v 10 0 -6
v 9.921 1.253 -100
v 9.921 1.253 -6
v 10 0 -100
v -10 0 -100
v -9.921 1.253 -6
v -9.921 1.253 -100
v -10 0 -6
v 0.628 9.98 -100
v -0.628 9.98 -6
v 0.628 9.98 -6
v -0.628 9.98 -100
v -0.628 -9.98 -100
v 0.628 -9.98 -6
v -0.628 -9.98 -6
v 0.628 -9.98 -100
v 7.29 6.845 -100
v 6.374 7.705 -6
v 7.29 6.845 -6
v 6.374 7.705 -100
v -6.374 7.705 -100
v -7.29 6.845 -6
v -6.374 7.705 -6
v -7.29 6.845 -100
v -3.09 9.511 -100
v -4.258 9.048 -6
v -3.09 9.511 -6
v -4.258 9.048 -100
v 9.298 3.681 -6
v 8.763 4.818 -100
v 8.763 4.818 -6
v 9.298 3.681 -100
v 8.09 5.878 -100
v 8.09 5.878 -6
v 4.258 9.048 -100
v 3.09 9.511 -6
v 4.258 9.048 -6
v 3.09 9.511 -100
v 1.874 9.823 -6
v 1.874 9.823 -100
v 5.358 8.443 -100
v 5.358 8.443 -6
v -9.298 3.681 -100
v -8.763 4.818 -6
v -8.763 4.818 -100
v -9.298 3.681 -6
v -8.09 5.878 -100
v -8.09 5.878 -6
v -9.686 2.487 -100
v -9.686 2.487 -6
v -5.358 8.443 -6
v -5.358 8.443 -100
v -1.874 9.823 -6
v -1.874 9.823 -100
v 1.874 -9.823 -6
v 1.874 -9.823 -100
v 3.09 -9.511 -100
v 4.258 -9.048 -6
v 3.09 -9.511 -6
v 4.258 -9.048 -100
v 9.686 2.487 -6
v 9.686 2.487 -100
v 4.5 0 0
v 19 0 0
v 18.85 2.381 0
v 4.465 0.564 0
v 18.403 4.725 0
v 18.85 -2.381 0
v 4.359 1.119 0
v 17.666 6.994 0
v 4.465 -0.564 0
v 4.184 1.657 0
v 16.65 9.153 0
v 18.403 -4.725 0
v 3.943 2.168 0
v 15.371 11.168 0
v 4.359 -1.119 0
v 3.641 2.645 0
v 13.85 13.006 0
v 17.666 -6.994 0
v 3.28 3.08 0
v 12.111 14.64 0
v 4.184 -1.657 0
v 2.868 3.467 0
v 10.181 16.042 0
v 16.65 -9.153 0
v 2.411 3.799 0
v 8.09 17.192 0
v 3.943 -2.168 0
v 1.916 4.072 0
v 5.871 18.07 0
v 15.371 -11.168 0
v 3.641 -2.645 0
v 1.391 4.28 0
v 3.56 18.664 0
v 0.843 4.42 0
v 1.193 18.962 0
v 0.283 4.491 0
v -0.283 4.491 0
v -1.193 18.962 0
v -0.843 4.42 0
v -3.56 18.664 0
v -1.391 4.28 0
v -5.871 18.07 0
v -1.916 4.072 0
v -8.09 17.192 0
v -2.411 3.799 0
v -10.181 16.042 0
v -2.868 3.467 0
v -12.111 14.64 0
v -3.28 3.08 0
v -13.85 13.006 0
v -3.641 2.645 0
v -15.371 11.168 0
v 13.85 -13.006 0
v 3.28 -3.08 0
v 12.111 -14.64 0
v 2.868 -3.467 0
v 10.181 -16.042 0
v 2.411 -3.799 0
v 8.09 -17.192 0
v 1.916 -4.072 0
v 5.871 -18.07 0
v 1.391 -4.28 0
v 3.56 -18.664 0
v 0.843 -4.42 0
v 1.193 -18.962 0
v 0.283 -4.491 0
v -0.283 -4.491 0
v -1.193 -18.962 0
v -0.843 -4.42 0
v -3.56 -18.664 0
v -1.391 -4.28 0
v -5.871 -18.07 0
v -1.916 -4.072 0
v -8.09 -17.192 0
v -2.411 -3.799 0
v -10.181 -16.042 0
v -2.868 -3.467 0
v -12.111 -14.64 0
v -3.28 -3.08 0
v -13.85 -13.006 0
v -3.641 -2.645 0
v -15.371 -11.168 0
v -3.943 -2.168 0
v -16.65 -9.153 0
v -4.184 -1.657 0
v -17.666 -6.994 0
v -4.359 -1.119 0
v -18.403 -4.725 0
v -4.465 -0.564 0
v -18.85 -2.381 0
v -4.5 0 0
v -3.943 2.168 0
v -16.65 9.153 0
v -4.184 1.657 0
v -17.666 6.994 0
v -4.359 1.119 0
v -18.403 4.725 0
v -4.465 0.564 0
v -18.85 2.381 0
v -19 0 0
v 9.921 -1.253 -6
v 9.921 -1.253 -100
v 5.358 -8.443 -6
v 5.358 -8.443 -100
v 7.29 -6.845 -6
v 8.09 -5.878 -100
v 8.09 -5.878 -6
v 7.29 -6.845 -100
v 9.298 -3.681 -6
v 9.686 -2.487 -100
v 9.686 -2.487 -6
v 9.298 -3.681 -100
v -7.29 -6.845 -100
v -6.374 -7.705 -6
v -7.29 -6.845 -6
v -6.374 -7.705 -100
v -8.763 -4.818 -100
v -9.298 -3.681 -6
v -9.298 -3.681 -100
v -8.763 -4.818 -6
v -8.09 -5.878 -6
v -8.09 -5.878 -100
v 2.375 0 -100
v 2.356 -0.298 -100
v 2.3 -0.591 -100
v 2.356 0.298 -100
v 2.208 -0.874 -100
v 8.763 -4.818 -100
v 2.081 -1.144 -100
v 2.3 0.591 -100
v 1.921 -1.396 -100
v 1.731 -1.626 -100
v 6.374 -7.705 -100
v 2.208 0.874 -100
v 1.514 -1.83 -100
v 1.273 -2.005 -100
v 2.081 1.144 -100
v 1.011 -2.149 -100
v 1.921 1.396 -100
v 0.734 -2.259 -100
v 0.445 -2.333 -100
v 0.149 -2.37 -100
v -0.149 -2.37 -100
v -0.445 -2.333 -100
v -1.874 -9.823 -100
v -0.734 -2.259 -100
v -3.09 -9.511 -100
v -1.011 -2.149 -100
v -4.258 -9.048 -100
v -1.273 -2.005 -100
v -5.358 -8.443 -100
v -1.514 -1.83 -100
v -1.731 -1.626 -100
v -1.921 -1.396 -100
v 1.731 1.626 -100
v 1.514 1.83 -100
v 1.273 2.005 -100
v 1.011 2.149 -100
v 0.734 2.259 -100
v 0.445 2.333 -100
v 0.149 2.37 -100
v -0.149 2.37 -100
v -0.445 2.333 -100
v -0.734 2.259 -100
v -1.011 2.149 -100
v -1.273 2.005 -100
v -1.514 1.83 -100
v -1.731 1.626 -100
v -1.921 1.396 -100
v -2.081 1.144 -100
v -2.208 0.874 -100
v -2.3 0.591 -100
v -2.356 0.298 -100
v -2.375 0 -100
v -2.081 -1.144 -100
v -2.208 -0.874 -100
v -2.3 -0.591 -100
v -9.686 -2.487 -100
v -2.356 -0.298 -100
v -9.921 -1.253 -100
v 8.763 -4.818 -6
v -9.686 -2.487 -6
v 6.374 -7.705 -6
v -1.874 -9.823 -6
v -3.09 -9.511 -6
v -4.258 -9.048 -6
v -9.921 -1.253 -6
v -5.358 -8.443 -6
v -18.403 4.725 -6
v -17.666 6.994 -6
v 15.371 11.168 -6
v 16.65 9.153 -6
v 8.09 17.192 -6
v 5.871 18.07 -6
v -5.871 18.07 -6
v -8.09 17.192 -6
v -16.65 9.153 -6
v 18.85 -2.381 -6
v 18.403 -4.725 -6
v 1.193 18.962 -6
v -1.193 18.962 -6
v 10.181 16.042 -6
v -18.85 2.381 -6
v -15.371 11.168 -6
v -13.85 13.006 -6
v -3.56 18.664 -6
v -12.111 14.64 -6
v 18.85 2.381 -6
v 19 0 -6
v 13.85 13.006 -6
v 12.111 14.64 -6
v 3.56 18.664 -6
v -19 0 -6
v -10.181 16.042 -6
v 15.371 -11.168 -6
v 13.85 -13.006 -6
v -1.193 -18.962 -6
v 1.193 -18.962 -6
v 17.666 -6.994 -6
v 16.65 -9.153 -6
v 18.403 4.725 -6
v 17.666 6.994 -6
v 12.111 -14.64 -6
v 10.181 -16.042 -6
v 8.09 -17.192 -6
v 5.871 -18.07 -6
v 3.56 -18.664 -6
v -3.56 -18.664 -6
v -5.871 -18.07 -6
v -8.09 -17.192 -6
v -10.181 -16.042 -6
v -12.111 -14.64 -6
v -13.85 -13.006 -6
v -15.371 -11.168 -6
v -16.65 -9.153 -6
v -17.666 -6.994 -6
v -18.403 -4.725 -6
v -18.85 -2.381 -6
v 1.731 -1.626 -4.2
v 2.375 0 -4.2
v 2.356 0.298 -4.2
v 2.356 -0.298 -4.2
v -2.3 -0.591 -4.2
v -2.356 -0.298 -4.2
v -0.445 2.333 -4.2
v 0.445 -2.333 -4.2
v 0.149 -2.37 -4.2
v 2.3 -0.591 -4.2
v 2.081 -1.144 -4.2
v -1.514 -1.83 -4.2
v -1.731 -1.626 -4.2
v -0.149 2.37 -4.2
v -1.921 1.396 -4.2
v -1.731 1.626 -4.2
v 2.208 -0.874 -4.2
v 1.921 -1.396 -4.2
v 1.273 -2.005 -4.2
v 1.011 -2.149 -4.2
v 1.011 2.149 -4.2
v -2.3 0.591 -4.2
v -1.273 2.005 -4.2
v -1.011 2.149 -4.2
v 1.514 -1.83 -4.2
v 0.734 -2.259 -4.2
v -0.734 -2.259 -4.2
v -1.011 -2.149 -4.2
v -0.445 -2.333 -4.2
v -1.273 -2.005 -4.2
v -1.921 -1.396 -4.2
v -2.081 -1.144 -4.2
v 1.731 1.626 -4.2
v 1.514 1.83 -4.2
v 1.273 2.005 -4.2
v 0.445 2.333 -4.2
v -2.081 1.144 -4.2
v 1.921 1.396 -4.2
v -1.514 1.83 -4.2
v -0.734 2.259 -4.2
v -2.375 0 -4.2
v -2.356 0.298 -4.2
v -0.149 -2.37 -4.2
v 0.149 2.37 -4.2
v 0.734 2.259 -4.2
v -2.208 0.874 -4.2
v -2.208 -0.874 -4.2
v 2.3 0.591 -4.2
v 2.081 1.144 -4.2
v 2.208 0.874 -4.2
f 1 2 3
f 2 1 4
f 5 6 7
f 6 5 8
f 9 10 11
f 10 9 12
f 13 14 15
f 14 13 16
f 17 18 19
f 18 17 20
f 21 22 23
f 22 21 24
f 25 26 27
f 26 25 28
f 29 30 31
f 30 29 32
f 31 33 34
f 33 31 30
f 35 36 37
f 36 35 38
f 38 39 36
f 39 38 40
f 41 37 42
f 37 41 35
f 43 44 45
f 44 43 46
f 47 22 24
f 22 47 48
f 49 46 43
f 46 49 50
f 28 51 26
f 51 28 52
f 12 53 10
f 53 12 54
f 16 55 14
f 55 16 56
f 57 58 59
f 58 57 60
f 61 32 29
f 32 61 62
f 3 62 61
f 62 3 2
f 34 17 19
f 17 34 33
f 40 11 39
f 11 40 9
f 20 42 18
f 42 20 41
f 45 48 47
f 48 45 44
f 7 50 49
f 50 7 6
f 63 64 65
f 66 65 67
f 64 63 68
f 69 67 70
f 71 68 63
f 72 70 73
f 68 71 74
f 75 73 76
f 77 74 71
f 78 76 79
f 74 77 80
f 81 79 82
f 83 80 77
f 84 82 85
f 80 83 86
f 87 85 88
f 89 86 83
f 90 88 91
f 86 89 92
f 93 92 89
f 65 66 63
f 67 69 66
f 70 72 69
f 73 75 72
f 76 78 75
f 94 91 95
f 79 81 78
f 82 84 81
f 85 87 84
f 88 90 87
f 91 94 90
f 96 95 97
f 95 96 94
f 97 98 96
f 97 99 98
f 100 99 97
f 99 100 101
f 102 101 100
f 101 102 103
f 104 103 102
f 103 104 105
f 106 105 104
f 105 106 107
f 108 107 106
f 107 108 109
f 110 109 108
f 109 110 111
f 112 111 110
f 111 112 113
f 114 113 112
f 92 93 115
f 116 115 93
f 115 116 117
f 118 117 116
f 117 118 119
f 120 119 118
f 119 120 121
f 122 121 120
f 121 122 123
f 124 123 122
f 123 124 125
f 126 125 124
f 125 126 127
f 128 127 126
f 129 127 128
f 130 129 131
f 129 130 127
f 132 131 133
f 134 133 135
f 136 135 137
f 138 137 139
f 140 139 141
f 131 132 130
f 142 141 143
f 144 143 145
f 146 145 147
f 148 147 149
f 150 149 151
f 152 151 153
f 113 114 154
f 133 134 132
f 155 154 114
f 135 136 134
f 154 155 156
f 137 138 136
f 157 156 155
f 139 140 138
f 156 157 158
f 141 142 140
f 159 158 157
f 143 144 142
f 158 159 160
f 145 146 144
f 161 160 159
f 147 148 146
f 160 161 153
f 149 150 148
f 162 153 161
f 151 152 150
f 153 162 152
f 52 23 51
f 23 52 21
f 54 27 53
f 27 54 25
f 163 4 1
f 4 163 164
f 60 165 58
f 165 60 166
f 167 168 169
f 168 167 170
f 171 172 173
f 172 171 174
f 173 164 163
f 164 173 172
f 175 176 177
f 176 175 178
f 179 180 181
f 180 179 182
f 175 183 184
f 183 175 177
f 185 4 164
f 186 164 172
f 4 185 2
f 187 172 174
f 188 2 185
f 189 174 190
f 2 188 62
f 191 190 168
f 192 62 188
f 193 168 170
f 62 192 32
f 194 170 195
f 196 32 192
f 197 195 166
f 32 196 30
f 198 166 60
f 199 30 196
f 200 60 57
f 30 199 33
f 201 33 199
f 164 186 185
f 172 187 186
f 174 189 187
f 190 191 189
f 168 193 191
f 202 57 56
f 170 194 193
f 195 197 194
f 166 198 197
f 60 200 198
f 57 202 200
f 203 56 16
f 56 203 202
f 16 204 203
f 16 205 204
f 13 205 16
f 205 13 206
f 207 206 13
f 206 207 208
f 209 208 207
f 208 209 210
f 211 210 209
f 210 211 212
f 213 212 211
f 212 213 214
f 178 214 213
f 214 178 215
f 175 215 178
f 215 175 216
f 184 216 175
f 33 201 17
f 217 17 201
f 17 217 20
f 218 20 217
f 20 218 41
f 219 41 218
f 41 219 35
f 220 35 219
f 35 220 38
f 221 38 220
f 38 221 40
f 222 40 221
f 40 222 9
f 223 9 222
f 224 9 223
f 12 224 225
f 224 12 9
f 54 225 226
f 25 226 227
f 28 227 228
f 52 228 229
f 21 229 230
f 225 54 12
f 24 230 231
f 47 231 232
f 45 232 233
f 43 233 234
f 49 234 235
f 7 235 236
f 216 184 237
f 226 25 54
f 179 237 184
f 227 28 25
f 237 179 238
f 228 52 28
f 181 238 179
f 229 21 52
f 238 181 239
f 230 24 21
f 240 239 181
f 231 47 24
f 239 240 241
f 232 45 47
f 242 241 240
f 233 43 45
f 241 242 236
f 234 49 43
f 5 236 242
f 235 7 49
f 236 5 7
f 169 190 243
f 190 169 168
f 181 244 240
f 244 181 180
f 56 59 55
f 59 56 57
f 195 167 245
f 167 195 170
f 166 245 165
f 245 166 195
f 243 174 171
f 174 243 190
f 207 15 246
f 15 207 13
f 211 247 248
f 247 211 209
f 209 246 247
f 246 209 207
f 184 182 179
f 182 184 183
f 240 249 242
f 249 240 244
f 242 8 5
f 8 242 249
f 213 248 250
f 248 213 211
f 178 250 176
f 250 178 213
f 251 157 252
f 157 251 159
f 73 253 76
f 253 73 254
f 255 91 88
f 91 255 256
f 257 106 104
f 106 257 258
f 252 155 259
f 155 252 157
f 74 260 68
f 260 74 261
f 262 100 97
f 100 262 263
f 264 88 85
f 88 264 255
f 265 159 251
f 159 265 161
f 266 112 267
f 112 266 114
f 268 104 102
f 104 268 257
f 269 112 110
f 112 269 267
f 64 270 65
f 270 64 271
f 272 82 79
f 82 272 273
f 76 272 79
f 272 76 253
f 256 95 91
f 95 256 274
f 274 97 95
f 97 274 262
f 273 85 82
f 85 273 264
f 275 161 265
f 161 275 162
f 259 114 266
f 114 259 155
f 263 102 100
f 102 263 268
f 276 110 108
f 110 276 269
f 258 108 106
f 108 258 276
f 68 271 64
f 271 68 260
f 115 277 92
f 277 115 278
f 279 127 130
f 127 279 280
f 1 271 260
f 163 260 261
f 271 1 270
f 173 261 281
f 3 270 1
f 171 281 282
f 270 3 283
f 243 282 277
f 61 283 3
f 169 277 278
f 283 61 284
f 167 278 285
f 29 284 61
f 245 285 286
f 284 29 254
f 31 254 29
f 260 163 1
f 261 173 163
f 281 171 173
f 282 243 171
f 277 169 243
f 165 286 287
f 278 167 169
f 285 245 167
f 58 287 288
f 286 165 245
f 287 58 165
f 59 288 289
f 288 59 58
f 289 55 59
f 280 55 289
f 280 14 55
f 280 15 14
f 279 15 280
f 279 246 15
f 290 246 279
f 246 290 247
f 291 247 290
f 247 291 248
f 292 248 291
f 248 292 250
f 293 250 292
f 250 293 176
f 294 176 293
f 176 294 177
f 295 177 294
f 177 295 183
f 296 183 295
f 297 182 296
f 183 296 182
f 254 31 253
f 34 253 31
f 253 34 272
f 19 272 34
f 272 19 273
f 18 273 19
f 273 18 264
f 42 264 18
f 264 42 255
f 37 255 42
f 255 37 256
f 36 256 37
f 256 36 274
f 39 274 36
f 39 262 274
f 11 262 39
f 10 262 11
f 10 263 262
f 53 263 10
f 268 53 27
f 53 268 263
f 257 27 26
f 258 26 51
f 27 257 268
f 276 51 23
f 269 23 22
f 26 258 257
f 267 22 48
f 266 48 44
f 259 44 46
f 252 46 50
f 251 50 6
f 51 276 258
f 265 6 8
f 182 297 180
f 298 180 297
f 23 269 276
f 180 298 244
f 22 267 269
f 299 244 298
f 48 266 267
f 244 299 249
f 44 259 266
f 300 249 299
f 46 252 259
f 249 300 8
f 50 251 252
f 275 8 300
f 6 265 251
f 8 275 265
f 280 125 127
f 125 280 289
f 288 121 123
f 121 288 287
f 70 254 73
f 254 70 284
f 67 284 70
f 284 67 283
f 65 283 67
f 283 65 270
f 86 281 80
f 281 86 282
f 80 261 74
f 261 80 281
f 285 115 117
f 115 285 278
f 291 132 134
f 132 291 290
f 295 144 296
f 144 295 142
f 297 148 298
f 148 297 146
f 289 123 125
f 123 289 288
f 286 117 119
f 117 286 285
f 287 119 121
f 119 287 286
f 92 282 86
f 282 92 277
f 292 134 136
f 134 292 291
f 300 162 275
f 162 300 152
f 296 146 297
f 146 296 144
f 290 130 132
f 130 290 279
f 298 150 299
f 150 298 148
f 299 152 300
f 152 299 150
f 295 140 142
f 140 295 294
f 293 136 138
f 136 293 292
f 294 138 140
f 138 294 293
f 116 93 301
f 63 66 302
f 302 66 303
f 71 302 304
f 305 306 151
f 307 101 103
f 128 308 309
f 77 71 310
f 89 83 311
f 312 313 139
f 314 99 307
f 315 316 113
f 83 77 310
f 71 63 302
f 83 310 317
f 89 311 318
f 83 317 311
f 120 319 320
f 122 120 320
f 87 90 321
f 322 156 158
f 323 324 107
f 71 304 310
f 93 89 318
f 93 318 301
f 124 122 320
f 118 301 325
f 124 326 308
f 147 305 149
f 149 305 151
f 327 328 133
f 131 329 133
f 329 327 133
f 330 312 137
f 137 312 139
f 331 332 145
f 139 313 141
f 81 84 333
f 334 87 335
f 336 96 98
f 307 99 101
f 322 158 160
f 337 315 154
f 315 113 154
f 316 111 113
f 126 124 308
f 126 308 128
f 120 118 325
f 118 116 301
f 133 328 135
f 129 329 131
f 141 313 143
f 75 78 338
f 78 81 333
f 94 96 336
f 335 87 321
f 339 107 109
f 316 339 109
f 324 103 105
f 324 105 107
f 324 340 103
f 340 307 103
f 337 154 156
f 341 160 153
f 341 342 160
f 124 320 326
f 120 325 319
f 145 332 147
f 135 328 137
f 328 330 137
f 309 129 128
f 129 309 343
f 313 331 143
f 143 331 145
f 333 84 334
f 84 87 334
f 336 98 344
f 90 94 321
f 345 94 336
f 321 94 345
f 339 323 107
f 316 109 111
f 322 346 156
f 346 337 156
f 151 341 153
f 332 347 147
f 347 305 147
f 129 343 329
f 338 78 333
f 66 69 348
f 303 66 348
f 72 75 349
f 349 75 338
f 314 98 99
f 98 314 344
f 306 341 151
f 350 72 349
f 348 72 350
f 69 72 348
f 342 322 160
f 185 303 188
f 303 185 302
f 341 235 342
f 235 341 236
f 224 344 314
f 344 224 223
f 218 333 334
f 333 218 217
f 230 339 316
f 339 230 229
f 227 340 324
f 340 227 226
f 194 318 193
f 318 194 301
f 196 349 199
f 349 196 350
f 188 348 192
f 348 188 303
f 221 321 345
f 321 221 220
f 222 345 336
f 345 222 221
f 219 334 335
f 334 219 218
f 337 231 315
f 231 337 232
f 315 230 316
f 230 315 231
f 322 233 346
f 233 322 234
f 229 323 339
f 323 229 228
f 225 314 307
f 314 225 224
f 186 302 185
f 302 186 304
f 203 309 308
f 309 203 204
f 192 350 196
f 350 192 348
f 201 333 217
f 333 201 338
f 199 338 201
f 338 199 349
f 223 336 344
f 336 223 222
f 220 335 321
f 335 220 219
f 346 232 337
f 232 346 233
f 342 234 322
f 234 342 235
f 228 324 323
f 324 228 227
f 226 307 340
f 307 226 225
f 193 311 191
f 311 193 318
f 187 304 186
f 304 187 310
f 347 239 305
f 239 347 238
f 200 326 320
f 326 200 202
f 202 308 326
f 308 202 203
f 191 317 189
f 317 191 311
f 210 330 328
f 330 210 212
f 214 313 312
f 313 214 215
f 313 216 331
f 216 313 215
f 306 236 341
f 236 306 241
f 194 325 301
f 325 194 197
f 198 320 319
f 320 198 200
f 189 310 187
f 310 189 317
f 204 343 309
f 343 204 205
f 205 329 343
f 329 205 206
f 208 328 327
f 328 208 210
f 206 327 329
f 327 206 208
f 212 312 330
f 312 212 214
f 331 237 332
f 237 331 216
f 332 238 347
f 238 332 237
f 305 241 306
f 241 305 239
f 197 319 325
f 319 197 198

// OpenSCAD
$fn = 50;


difference() {
	union() {
		translate(v = [0, 0, -100.0000000000]) {
			cylinder(h = 100, r = 10.0000000000);
		}
		translate(v = [0, 0, -6.0000000000]) {
			cylinder(h = 6, r = 19.0000000000);
		}
	}
	union() {
		translate(v = [0, 0, 0]) {
			rotate(a = [0, 0, 0]) {
				difference() {
					union() {
						#translate(v = [0, 0, -100.0000000000]) {
							cylinder(h = 100, r = 2.2500000000);
						}
						#translate(v = [0, 0, -4.2000000000]) {
							cylinder(h = 4.2000000000, r = 10.0000000000, r1 = 2.3750000000, r2 = 4.5000000000);
						}
						#translate(v = [0, 0, -100.0000000000]) {
							cylinder(h = 100, r = 2.3750000000);
						}
						#translate(v = [0, 0, -100.0000000000]) {
							cylinder(h = 100, r = 2.2500000000);
						}
					}
					union();
				}
			}
		}
	}
}
